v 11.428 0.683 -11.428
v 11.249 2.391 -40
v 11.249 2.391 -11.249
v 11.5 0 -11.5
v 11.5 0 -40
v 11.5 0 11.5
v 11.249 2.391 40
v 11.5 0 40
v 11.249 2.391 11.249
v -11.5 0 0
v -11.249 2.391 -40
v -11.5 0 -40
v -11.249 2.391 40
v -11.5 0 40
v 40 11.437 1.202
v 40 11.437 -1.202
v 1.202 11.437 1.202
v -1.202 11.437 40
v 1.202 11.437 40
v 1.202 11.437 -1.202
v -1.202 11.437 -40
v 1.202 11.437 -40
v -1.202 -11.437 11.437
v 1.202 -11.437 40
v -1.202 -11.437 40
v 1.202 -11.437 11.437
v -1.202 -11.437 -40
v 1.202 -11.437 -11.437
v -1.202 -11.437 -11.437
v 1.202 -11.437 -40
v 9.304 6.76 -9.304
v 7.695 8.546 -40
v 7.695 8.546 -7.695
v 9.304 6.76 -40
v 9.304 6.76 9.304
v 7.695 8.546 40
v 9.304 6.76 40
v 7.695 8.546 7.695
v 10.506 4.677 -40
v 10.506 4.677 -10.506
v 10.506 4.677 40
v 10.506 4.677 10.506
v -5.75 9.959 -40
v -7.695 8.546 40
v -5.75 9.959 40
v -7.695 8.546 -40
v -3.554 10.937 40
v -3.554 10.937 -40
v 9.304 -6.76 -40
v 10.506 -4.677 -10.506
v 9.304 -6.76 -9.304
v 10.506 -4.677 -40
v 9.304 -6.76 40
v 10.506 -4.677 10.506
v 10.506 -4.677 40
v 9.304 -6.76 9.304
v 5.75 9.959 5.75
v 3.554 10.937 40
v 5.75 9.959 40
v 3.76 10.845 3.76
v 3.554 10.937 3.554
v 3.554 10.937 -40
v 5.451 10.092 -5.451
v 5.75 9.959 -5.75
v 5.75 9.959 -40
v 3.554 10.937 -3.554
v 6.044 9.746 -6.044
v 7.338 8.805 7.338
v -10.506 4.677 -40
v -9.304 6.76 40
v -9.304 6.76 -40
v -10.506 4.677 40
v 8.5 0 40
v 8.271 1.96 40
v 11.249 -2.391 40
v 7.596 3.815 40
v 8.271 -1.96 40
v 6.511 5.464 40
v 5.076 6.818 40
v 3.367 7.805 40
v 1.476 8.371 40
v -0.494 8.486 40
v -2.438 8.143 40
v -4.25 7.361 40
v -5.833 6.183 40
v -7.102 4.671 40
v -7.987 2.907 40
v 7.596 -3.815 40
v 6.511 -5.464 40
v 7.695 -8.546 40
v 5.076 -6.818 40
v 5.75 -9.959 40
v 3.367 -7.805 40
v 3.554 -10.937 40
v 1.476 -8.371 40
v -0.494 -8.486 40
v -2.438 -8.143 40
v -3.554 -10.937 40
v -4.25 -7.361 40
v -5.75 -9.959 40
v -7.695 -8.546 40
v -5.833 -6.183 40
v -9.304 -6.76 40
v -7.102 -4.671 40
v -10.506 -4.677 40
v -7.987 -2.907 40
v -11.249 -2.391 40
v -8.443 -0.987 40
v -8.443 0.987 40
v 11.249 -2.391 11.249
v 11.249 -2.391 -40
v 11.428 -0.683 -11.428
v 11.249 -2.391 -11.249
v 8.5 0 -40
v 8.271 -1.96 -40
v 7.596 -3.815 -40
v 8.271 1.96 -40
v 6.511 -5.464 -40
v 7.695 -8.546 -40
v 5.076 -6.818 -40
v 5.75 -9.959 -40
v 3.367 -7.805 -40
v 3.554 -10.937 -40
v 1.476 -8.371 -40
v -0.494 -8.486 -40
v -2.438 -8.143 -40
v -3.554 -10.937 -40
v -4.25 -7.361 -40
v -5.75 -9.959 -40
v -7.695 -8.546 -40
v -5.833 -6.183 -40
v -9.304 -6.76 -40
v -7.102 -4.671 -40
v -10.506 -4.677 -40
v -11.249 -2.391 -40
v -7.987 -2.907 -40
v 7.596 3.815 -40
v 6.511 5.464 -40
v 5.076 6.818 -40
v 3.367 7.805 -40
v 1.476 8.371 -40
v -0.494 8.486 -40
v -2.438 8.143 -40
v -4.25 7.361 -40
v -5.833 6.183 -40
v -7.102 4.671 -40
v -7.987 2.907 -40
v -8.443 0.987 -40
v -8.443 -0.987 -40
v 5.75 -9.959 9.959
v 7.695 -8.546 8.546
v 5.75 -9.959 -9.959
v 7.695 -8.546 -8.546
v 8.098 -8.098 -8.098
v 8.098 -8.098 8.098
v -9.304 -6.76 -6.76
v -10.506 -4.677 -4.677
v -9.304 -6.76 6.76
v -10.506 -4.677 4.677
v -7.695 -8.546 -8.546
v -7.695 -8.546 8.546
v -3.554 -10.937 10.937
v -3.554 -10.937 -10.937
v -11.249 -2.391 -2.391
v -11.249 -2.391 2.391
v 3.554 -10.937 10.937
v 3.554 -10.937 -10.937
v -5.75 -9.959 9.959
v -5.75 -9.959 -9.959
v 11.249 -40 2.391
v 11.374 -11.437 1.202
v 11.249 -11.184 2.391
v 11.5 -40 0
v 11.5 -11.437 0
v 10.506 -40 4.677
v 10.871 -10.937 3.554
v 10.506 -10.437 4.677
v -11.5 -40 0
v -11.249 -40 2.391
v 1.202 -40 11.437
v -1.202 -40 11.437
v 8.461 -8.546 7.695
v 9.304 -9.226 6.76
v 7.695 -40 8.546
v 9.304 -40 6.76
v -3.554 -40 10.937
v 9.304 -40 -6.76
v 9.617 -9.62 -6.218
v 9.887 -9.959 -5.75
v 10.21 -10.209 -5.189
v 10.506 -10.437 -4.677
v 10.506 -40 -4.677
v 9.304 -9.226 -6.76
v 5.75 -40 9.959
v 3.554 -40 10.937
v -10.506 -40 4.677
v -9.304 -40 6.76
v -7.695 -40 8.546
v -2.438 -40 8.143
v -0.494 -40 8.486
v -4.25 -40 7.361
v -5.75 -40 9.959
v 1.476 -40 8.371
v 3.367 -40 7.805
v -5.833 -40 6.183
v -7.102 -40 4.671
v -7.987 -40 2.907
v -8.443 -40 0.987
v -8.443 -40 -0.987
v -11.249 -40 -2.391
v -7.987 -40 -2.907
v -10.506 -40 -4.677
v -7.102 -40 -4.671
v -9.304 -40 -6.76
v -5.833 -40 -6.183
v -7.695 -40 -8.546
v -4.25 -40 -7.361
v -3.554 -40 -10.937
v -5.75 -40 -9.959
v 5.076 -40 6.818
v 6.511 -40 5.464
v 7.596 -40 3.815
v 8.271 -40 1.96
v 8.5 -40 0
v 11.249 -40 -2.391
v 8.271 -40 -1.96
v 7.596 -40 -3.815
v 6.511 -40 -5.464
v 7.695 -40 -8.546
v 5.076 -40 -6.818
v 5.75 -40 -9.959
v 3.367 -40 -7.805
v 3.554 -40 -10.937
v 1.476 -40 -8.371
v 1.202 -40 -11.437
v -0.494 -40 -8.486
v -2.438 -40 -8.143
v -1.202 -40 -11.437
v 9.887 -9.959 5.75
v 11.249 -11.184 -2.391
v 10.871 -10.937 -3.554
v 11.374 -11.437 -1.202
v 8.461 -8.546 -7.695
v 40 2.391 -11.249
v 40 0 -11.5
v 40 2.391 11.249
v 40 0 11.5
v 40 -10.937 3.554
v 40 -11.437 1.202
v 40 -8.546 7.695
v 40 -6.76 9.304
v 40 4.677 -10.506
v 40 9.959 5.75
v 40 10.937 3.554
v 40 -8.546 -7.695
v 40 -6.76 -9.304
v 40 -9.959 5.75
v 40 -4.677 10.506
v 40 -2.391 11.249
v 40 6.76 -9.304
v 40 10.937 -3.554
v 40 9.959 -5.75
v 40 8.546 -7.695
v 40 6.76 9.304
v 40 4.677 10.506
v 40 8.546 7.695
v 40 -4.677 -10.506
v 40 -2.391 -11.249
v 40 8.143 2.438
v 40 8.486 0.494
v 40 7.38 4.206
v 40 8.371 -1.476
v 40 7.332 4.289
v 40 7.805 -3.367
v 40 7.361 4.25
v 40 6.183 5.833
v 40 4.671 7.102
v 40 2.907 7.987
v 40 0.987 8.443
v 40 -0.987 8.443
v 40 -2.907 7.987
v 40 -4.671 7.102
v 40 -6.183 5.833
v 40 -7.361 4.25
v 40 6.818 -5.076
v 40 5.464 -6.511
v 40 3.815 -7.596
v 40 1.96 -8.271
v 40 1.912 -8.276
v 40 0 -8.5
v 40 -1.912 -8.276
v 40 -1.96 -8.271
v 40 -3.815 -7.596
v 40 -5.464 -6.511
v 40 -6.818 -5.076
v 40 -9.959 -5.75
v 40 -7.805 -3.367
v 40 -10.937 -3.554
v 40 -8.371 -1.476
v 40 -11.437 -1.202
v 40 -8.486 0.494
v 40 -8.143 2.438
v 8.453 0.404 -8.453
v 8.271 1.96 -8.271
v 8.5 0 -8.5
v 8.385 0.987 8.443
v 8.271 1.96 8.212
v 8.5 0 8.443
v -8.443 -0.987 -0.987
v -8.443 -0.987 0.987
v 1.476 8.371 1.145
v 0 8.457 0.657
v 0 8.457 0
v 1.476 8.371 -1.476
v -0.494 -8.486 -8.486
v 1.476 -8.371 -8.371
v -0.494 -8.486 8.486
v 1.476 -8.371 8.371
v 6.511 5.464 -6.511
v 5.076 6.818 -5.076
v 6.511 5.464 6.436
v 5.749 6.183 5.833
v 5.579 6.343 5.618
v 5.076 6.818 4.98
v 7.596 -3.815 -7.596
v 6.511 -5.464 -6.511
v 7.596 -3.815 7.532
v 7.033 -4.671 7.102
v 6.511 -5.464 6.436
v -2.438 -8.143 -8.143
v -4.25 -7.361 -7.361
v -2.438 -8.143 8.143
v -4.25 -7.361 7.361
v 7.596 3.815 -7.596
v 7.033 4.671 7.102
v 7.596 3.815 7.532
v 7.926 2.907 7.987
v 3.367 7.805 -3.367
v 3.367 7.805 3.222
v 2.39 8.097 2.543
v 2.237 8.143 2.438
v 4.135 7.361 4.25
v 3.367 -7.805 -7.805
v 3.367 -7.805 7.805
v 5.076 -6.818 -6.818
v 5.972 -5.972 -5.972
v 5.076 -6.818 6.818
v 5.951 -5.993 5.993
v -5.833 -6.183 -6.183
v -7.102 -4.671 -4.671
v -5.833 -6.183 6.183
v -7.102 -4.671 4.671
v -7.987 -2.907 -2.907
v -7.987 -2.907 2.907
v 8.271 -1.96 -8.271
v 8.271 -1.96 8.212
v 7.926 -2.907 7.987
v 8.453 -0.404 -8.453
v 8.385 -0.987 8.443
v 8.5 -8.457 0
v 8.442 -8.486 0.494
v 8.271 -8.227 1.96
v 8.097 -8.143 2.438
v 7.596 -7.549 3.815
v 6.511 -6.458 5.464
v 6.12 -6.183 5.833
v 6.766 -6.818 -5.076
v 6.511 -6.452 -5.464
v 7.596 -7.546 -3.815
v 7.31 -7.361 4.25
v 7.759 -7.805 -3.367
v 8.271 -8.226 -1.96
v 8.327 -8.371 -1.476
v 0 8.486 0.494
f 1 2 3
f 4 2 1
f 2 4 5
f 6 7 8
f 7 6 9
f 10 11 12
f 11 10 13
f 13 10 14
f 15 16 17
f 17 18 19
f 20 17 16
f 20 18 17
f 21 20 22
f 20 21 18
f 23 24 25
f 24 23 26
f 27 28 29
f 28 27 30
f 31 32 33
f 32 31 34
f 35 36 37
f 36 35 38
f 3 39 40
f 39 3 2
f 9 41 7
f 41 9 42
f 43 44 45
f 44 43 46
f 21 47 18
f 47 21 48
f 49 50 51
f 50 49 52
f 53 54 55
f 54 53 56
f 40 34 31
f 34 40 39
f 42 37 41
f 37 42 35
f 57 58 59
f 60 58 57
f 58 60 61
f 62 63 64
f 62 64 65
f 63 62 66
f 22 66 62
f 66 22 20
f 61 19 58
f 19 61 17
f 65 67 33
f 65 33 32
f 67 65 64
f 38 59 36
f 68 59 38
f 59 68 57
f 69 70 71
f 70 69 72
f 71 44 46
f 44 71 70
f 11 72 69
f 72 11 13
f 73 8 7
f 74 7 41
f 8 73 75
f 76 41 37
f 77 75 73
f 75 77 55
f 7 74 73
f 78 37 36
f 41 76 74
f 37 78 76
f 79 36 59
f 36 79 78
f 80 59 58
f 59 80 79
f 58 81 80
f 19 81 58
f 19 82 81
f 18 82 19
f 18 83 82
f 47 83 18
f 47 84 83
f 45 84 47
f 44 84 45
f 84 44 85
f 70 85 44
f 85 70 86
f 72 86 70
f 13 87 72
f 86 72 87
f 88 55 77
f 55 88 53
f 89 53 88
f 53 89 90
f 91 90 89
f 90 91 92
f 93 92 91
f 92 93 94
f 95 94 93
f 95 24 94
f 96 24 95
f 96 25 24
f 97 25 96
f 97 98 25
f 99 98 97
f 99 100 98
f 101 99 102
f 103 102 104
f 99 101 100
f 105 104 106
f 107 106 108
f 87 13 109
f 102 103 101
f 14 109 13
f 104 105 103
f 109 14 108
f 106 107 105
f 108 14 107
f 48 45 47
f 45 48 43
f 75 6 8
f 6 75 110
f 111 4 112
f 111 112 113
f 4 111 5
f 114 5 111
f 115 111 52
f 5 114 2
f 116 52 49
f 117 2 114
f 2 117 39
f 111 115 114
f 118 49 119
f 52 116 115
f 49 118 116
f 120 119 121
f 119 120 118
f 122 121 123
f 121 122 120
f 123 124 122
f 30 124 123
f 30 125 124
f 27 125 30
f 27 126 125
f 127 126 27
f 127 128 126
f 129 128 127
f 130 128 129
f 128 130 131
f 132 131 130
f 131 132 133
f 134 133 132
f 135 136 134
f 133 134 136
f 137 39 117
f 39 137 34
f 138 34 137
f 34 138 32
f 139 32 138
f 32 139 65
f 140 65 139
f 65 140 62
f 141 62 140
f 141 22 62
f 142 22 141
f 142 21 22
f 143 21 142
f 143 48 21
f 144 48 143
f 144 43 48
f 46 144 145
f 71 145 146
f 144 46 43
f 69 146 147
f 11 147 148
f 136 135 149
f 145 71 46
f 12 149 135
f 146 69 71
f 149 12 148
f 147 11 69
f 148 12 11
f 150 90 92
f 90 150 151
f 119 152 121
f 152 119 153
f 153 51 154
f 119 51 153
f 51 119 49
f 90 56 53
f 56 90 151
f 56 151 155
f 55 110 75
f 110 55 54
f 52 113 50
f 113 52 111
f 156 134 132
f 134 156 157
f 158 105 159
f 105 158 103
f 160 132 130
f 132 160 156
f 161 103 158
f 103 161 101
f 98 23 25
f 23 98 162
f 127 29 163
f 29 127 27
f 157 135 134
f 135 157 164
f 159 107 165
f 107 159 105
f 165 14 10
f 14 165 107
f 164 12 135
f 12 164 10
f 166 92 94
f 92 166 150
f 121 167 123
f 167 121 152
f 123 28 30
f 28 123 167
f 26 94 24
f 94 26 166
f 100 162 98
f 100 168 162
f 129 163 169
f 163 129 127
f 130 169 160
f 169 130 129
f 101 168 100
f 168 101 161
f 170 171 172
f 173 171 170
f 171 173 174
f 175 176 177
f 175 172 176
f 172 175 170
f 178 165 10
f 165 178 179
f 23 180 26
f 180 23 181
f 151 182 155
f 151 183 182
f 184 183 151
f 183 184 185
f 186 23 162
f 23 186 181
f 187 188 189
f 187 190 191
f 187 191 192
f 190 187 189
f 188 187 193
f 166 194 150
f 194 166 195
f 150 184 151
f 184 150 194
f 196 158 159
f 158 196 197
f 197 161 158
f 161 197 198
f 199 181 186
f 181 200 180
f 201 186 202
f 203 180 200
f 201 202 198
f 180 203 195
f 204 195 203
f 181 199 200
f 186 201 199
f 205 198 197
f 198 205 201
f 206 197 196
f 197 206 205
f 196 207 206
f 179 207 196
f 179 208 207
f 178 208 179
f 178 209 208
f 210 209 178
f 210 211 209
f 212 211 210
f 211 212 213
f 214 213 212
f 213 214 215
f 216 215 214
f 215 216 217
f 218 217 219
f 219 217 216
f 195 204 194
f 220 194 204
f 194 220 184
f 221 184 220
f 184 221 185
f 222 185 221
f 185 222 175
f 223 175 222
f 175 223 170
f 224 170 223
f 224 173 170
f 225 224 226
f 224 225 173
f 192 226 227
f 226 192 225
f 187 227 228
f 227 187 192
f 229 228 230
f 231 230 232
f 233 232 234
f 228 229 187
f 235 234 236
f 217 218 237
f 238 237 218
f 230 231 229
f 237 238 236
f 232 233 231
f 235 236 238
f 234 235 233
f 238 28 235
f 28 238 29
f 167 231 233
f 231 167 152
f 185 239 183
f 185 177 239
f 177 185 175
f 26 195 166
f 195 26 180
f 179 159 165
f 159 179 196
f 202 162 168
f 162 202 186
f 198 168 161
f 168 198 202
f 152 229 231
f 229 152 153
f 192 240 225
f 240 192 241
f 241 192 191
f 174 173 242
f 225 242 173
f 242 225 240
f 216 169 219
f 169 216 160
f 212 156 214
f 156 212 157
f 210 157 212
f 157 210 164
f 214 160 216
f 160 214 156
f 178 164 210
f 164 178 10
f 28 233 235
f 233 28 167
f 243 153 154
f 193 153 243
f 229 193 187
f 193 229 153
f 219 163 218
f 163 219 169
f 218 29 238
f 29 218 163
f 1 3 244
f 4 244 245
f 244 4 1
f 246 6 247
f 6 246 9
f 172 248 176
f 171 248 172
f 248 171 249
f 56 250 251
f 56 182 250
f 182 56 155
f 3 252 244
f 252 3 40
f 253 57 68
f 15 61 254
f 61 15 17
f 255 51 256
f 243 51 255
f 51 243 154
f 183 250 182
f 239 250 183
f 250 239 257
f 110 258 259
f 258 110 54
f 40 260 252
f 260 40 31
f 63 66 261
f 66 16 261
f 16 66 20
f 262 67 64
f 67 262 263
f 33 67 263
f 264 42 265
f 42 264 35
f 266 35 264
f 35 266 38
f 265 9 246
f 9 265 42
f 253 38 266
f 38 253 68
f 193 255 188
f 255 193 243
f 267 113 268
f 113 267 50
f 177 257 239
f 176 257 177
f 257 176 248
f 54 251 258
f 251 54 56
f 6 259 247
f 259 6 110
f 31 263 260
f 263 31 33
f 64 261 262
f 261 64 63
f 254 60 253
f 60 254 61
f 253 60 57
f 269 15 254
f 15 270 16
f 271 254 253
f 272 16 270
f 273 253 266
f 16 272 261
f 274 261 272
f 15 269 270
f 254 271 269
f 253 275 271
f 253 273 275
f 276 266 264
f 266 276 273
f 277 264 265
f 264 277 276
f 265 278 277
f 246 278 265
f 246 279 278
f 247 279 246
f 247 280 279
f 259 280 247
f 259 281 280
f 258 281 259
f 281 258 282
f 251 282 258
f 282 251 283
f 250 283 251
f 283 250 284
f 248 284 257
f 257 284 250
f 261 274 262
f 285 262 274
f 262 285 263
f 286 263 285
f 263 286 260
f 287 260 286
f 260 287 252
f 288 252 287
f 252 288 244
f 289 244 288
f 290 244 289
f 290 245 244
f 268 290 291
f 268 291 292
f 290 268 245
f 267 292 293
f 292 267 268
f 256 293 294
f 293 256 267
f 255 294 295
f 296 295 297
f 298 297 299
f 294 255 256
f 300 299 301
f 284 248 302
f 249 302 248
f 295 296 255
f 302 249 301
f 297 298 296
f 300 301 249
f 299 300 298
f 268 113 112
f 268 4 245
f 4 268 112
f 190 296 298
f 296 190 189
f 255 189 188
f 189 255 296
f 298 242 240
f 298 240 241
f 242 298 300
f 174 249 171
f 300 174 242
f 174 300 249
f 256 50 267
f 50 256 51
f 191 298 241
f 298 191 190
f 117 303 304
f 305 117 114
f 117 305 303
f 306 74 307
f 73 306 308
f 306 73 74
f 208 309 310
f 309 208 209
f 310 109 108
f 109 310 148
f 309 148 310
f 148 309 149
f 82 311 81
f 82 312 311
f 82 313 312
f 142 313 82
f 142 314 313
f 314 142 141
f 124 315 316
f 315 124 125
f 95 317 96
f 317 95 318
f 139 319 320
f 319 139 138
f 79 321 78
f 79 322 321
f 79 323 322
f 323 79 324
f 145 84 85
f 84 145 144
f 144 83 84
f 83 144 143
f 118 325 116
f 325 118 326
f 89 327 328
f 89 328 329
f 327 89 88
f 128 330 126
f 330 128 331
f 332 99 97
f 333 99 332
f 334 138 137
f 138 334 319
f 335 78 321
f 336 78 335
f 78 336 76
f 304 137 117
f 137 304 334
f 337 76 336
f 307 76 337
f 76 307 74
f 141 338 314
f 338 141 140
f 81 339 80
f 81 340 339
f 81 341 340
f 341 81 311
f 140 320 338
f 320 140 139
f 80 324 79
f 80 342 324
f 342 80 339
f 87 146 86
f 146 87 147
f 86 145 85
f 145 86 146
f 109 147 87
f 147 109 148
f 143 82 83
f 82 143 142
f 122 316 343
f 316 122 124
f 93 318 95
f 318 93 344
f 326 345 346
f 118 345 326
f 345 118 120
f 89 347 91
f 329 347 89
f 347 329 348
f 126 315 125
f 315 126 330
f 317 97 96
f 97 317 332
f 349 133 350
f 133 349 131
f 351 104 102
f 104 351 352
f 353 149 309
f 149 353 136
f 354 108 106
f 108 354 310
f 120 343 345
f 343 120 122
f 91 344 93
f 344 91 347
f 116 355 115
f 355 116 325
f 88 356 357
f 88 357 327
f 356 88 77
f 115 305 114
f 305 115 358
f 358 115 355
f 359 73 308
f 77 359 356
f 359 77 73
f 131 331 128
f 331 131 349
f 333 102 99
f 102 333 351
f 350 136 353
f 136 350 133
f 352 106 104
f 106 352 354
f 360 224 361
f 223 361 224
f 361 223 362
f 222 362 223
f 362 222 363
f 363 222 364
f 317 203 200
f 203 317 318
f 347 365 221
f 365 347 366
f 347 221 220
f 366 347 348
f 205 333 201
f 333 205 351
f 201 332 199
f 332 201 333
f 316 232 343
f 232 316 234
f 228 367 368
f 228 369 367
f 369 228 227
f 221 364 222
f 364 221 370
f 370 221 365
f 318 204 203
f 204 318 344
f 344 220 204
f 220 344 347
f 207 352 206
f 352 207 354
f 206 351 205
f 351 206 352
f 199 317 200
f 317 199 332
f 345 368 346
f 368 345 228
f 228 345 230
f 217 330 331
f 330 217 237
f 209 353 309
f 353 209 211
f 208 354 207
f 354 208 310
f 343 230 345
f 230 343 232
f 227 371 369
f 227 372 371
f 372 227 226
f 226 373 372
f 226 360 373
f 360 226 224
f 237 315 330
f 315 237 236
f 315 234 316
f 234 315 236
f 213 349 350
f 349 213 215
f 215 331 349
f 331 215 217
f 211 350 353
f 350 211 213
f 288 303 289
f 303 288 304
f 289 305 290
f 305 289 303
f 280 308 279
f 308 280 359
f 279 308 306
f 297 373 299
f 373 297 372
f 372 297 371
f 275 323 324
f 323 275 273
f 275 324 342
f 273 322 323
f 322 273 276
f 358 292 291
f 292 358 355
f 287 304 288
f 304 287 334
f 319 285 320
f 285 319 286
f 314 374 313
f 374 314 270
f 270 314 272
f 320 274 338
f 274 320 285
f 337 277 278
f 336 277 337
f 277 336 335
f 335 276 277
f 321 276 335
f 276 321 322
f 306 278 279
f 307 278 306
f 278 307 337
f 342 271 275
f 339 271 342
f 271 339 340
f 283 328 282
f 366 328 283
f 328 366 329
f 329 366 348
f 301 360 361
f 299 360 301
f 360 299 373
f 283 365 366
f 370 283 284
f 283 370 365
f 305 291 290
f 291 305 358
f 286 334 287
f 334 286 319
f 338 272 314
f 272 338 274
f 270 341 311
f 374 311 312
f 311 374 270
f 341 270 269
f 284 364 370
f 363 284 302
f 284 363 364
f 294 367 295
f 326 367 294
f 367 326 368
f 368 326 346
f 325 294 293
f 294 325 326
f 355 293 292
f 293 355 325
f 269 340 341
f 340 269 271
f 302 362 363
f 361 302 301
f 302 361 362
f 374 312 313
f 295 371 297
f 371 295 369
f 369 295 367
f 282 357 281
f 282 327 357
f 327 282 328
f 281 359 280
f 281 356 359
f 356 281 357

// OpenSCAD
module four_way_connector(diameter, thickness, length)
{
	outer_radius = (diameter + (thickness * 2)) / 2;
	inner_radius = outer_radius - thickness;

	union() {
		difference() {
            // Outer cylinders
			union() {
				cylinder(r = outer_radius, h = length * 2, center = true);
				rotate([90, 0, 0]) cylinder(r = outer_radius, h = length, center = false);
				rotate([0, 90, 0]) cylinder(r = outer_radius, h = length, center = false);
			}

            // Inner cylinders - to hollow out the outer ones
			cylinder(r = inner_radius, h = (length * 2 + 1), center = true);
			rotate([90, 0, 0]) cylinder(r = inner_radius, h = (length + 1), center = false);
			rotate([0, 90, 0]) cylinder(r = inner_radius, h = (length + 1), center = false);
		}
	}
}

four_way_connector(17, 3, 40);
